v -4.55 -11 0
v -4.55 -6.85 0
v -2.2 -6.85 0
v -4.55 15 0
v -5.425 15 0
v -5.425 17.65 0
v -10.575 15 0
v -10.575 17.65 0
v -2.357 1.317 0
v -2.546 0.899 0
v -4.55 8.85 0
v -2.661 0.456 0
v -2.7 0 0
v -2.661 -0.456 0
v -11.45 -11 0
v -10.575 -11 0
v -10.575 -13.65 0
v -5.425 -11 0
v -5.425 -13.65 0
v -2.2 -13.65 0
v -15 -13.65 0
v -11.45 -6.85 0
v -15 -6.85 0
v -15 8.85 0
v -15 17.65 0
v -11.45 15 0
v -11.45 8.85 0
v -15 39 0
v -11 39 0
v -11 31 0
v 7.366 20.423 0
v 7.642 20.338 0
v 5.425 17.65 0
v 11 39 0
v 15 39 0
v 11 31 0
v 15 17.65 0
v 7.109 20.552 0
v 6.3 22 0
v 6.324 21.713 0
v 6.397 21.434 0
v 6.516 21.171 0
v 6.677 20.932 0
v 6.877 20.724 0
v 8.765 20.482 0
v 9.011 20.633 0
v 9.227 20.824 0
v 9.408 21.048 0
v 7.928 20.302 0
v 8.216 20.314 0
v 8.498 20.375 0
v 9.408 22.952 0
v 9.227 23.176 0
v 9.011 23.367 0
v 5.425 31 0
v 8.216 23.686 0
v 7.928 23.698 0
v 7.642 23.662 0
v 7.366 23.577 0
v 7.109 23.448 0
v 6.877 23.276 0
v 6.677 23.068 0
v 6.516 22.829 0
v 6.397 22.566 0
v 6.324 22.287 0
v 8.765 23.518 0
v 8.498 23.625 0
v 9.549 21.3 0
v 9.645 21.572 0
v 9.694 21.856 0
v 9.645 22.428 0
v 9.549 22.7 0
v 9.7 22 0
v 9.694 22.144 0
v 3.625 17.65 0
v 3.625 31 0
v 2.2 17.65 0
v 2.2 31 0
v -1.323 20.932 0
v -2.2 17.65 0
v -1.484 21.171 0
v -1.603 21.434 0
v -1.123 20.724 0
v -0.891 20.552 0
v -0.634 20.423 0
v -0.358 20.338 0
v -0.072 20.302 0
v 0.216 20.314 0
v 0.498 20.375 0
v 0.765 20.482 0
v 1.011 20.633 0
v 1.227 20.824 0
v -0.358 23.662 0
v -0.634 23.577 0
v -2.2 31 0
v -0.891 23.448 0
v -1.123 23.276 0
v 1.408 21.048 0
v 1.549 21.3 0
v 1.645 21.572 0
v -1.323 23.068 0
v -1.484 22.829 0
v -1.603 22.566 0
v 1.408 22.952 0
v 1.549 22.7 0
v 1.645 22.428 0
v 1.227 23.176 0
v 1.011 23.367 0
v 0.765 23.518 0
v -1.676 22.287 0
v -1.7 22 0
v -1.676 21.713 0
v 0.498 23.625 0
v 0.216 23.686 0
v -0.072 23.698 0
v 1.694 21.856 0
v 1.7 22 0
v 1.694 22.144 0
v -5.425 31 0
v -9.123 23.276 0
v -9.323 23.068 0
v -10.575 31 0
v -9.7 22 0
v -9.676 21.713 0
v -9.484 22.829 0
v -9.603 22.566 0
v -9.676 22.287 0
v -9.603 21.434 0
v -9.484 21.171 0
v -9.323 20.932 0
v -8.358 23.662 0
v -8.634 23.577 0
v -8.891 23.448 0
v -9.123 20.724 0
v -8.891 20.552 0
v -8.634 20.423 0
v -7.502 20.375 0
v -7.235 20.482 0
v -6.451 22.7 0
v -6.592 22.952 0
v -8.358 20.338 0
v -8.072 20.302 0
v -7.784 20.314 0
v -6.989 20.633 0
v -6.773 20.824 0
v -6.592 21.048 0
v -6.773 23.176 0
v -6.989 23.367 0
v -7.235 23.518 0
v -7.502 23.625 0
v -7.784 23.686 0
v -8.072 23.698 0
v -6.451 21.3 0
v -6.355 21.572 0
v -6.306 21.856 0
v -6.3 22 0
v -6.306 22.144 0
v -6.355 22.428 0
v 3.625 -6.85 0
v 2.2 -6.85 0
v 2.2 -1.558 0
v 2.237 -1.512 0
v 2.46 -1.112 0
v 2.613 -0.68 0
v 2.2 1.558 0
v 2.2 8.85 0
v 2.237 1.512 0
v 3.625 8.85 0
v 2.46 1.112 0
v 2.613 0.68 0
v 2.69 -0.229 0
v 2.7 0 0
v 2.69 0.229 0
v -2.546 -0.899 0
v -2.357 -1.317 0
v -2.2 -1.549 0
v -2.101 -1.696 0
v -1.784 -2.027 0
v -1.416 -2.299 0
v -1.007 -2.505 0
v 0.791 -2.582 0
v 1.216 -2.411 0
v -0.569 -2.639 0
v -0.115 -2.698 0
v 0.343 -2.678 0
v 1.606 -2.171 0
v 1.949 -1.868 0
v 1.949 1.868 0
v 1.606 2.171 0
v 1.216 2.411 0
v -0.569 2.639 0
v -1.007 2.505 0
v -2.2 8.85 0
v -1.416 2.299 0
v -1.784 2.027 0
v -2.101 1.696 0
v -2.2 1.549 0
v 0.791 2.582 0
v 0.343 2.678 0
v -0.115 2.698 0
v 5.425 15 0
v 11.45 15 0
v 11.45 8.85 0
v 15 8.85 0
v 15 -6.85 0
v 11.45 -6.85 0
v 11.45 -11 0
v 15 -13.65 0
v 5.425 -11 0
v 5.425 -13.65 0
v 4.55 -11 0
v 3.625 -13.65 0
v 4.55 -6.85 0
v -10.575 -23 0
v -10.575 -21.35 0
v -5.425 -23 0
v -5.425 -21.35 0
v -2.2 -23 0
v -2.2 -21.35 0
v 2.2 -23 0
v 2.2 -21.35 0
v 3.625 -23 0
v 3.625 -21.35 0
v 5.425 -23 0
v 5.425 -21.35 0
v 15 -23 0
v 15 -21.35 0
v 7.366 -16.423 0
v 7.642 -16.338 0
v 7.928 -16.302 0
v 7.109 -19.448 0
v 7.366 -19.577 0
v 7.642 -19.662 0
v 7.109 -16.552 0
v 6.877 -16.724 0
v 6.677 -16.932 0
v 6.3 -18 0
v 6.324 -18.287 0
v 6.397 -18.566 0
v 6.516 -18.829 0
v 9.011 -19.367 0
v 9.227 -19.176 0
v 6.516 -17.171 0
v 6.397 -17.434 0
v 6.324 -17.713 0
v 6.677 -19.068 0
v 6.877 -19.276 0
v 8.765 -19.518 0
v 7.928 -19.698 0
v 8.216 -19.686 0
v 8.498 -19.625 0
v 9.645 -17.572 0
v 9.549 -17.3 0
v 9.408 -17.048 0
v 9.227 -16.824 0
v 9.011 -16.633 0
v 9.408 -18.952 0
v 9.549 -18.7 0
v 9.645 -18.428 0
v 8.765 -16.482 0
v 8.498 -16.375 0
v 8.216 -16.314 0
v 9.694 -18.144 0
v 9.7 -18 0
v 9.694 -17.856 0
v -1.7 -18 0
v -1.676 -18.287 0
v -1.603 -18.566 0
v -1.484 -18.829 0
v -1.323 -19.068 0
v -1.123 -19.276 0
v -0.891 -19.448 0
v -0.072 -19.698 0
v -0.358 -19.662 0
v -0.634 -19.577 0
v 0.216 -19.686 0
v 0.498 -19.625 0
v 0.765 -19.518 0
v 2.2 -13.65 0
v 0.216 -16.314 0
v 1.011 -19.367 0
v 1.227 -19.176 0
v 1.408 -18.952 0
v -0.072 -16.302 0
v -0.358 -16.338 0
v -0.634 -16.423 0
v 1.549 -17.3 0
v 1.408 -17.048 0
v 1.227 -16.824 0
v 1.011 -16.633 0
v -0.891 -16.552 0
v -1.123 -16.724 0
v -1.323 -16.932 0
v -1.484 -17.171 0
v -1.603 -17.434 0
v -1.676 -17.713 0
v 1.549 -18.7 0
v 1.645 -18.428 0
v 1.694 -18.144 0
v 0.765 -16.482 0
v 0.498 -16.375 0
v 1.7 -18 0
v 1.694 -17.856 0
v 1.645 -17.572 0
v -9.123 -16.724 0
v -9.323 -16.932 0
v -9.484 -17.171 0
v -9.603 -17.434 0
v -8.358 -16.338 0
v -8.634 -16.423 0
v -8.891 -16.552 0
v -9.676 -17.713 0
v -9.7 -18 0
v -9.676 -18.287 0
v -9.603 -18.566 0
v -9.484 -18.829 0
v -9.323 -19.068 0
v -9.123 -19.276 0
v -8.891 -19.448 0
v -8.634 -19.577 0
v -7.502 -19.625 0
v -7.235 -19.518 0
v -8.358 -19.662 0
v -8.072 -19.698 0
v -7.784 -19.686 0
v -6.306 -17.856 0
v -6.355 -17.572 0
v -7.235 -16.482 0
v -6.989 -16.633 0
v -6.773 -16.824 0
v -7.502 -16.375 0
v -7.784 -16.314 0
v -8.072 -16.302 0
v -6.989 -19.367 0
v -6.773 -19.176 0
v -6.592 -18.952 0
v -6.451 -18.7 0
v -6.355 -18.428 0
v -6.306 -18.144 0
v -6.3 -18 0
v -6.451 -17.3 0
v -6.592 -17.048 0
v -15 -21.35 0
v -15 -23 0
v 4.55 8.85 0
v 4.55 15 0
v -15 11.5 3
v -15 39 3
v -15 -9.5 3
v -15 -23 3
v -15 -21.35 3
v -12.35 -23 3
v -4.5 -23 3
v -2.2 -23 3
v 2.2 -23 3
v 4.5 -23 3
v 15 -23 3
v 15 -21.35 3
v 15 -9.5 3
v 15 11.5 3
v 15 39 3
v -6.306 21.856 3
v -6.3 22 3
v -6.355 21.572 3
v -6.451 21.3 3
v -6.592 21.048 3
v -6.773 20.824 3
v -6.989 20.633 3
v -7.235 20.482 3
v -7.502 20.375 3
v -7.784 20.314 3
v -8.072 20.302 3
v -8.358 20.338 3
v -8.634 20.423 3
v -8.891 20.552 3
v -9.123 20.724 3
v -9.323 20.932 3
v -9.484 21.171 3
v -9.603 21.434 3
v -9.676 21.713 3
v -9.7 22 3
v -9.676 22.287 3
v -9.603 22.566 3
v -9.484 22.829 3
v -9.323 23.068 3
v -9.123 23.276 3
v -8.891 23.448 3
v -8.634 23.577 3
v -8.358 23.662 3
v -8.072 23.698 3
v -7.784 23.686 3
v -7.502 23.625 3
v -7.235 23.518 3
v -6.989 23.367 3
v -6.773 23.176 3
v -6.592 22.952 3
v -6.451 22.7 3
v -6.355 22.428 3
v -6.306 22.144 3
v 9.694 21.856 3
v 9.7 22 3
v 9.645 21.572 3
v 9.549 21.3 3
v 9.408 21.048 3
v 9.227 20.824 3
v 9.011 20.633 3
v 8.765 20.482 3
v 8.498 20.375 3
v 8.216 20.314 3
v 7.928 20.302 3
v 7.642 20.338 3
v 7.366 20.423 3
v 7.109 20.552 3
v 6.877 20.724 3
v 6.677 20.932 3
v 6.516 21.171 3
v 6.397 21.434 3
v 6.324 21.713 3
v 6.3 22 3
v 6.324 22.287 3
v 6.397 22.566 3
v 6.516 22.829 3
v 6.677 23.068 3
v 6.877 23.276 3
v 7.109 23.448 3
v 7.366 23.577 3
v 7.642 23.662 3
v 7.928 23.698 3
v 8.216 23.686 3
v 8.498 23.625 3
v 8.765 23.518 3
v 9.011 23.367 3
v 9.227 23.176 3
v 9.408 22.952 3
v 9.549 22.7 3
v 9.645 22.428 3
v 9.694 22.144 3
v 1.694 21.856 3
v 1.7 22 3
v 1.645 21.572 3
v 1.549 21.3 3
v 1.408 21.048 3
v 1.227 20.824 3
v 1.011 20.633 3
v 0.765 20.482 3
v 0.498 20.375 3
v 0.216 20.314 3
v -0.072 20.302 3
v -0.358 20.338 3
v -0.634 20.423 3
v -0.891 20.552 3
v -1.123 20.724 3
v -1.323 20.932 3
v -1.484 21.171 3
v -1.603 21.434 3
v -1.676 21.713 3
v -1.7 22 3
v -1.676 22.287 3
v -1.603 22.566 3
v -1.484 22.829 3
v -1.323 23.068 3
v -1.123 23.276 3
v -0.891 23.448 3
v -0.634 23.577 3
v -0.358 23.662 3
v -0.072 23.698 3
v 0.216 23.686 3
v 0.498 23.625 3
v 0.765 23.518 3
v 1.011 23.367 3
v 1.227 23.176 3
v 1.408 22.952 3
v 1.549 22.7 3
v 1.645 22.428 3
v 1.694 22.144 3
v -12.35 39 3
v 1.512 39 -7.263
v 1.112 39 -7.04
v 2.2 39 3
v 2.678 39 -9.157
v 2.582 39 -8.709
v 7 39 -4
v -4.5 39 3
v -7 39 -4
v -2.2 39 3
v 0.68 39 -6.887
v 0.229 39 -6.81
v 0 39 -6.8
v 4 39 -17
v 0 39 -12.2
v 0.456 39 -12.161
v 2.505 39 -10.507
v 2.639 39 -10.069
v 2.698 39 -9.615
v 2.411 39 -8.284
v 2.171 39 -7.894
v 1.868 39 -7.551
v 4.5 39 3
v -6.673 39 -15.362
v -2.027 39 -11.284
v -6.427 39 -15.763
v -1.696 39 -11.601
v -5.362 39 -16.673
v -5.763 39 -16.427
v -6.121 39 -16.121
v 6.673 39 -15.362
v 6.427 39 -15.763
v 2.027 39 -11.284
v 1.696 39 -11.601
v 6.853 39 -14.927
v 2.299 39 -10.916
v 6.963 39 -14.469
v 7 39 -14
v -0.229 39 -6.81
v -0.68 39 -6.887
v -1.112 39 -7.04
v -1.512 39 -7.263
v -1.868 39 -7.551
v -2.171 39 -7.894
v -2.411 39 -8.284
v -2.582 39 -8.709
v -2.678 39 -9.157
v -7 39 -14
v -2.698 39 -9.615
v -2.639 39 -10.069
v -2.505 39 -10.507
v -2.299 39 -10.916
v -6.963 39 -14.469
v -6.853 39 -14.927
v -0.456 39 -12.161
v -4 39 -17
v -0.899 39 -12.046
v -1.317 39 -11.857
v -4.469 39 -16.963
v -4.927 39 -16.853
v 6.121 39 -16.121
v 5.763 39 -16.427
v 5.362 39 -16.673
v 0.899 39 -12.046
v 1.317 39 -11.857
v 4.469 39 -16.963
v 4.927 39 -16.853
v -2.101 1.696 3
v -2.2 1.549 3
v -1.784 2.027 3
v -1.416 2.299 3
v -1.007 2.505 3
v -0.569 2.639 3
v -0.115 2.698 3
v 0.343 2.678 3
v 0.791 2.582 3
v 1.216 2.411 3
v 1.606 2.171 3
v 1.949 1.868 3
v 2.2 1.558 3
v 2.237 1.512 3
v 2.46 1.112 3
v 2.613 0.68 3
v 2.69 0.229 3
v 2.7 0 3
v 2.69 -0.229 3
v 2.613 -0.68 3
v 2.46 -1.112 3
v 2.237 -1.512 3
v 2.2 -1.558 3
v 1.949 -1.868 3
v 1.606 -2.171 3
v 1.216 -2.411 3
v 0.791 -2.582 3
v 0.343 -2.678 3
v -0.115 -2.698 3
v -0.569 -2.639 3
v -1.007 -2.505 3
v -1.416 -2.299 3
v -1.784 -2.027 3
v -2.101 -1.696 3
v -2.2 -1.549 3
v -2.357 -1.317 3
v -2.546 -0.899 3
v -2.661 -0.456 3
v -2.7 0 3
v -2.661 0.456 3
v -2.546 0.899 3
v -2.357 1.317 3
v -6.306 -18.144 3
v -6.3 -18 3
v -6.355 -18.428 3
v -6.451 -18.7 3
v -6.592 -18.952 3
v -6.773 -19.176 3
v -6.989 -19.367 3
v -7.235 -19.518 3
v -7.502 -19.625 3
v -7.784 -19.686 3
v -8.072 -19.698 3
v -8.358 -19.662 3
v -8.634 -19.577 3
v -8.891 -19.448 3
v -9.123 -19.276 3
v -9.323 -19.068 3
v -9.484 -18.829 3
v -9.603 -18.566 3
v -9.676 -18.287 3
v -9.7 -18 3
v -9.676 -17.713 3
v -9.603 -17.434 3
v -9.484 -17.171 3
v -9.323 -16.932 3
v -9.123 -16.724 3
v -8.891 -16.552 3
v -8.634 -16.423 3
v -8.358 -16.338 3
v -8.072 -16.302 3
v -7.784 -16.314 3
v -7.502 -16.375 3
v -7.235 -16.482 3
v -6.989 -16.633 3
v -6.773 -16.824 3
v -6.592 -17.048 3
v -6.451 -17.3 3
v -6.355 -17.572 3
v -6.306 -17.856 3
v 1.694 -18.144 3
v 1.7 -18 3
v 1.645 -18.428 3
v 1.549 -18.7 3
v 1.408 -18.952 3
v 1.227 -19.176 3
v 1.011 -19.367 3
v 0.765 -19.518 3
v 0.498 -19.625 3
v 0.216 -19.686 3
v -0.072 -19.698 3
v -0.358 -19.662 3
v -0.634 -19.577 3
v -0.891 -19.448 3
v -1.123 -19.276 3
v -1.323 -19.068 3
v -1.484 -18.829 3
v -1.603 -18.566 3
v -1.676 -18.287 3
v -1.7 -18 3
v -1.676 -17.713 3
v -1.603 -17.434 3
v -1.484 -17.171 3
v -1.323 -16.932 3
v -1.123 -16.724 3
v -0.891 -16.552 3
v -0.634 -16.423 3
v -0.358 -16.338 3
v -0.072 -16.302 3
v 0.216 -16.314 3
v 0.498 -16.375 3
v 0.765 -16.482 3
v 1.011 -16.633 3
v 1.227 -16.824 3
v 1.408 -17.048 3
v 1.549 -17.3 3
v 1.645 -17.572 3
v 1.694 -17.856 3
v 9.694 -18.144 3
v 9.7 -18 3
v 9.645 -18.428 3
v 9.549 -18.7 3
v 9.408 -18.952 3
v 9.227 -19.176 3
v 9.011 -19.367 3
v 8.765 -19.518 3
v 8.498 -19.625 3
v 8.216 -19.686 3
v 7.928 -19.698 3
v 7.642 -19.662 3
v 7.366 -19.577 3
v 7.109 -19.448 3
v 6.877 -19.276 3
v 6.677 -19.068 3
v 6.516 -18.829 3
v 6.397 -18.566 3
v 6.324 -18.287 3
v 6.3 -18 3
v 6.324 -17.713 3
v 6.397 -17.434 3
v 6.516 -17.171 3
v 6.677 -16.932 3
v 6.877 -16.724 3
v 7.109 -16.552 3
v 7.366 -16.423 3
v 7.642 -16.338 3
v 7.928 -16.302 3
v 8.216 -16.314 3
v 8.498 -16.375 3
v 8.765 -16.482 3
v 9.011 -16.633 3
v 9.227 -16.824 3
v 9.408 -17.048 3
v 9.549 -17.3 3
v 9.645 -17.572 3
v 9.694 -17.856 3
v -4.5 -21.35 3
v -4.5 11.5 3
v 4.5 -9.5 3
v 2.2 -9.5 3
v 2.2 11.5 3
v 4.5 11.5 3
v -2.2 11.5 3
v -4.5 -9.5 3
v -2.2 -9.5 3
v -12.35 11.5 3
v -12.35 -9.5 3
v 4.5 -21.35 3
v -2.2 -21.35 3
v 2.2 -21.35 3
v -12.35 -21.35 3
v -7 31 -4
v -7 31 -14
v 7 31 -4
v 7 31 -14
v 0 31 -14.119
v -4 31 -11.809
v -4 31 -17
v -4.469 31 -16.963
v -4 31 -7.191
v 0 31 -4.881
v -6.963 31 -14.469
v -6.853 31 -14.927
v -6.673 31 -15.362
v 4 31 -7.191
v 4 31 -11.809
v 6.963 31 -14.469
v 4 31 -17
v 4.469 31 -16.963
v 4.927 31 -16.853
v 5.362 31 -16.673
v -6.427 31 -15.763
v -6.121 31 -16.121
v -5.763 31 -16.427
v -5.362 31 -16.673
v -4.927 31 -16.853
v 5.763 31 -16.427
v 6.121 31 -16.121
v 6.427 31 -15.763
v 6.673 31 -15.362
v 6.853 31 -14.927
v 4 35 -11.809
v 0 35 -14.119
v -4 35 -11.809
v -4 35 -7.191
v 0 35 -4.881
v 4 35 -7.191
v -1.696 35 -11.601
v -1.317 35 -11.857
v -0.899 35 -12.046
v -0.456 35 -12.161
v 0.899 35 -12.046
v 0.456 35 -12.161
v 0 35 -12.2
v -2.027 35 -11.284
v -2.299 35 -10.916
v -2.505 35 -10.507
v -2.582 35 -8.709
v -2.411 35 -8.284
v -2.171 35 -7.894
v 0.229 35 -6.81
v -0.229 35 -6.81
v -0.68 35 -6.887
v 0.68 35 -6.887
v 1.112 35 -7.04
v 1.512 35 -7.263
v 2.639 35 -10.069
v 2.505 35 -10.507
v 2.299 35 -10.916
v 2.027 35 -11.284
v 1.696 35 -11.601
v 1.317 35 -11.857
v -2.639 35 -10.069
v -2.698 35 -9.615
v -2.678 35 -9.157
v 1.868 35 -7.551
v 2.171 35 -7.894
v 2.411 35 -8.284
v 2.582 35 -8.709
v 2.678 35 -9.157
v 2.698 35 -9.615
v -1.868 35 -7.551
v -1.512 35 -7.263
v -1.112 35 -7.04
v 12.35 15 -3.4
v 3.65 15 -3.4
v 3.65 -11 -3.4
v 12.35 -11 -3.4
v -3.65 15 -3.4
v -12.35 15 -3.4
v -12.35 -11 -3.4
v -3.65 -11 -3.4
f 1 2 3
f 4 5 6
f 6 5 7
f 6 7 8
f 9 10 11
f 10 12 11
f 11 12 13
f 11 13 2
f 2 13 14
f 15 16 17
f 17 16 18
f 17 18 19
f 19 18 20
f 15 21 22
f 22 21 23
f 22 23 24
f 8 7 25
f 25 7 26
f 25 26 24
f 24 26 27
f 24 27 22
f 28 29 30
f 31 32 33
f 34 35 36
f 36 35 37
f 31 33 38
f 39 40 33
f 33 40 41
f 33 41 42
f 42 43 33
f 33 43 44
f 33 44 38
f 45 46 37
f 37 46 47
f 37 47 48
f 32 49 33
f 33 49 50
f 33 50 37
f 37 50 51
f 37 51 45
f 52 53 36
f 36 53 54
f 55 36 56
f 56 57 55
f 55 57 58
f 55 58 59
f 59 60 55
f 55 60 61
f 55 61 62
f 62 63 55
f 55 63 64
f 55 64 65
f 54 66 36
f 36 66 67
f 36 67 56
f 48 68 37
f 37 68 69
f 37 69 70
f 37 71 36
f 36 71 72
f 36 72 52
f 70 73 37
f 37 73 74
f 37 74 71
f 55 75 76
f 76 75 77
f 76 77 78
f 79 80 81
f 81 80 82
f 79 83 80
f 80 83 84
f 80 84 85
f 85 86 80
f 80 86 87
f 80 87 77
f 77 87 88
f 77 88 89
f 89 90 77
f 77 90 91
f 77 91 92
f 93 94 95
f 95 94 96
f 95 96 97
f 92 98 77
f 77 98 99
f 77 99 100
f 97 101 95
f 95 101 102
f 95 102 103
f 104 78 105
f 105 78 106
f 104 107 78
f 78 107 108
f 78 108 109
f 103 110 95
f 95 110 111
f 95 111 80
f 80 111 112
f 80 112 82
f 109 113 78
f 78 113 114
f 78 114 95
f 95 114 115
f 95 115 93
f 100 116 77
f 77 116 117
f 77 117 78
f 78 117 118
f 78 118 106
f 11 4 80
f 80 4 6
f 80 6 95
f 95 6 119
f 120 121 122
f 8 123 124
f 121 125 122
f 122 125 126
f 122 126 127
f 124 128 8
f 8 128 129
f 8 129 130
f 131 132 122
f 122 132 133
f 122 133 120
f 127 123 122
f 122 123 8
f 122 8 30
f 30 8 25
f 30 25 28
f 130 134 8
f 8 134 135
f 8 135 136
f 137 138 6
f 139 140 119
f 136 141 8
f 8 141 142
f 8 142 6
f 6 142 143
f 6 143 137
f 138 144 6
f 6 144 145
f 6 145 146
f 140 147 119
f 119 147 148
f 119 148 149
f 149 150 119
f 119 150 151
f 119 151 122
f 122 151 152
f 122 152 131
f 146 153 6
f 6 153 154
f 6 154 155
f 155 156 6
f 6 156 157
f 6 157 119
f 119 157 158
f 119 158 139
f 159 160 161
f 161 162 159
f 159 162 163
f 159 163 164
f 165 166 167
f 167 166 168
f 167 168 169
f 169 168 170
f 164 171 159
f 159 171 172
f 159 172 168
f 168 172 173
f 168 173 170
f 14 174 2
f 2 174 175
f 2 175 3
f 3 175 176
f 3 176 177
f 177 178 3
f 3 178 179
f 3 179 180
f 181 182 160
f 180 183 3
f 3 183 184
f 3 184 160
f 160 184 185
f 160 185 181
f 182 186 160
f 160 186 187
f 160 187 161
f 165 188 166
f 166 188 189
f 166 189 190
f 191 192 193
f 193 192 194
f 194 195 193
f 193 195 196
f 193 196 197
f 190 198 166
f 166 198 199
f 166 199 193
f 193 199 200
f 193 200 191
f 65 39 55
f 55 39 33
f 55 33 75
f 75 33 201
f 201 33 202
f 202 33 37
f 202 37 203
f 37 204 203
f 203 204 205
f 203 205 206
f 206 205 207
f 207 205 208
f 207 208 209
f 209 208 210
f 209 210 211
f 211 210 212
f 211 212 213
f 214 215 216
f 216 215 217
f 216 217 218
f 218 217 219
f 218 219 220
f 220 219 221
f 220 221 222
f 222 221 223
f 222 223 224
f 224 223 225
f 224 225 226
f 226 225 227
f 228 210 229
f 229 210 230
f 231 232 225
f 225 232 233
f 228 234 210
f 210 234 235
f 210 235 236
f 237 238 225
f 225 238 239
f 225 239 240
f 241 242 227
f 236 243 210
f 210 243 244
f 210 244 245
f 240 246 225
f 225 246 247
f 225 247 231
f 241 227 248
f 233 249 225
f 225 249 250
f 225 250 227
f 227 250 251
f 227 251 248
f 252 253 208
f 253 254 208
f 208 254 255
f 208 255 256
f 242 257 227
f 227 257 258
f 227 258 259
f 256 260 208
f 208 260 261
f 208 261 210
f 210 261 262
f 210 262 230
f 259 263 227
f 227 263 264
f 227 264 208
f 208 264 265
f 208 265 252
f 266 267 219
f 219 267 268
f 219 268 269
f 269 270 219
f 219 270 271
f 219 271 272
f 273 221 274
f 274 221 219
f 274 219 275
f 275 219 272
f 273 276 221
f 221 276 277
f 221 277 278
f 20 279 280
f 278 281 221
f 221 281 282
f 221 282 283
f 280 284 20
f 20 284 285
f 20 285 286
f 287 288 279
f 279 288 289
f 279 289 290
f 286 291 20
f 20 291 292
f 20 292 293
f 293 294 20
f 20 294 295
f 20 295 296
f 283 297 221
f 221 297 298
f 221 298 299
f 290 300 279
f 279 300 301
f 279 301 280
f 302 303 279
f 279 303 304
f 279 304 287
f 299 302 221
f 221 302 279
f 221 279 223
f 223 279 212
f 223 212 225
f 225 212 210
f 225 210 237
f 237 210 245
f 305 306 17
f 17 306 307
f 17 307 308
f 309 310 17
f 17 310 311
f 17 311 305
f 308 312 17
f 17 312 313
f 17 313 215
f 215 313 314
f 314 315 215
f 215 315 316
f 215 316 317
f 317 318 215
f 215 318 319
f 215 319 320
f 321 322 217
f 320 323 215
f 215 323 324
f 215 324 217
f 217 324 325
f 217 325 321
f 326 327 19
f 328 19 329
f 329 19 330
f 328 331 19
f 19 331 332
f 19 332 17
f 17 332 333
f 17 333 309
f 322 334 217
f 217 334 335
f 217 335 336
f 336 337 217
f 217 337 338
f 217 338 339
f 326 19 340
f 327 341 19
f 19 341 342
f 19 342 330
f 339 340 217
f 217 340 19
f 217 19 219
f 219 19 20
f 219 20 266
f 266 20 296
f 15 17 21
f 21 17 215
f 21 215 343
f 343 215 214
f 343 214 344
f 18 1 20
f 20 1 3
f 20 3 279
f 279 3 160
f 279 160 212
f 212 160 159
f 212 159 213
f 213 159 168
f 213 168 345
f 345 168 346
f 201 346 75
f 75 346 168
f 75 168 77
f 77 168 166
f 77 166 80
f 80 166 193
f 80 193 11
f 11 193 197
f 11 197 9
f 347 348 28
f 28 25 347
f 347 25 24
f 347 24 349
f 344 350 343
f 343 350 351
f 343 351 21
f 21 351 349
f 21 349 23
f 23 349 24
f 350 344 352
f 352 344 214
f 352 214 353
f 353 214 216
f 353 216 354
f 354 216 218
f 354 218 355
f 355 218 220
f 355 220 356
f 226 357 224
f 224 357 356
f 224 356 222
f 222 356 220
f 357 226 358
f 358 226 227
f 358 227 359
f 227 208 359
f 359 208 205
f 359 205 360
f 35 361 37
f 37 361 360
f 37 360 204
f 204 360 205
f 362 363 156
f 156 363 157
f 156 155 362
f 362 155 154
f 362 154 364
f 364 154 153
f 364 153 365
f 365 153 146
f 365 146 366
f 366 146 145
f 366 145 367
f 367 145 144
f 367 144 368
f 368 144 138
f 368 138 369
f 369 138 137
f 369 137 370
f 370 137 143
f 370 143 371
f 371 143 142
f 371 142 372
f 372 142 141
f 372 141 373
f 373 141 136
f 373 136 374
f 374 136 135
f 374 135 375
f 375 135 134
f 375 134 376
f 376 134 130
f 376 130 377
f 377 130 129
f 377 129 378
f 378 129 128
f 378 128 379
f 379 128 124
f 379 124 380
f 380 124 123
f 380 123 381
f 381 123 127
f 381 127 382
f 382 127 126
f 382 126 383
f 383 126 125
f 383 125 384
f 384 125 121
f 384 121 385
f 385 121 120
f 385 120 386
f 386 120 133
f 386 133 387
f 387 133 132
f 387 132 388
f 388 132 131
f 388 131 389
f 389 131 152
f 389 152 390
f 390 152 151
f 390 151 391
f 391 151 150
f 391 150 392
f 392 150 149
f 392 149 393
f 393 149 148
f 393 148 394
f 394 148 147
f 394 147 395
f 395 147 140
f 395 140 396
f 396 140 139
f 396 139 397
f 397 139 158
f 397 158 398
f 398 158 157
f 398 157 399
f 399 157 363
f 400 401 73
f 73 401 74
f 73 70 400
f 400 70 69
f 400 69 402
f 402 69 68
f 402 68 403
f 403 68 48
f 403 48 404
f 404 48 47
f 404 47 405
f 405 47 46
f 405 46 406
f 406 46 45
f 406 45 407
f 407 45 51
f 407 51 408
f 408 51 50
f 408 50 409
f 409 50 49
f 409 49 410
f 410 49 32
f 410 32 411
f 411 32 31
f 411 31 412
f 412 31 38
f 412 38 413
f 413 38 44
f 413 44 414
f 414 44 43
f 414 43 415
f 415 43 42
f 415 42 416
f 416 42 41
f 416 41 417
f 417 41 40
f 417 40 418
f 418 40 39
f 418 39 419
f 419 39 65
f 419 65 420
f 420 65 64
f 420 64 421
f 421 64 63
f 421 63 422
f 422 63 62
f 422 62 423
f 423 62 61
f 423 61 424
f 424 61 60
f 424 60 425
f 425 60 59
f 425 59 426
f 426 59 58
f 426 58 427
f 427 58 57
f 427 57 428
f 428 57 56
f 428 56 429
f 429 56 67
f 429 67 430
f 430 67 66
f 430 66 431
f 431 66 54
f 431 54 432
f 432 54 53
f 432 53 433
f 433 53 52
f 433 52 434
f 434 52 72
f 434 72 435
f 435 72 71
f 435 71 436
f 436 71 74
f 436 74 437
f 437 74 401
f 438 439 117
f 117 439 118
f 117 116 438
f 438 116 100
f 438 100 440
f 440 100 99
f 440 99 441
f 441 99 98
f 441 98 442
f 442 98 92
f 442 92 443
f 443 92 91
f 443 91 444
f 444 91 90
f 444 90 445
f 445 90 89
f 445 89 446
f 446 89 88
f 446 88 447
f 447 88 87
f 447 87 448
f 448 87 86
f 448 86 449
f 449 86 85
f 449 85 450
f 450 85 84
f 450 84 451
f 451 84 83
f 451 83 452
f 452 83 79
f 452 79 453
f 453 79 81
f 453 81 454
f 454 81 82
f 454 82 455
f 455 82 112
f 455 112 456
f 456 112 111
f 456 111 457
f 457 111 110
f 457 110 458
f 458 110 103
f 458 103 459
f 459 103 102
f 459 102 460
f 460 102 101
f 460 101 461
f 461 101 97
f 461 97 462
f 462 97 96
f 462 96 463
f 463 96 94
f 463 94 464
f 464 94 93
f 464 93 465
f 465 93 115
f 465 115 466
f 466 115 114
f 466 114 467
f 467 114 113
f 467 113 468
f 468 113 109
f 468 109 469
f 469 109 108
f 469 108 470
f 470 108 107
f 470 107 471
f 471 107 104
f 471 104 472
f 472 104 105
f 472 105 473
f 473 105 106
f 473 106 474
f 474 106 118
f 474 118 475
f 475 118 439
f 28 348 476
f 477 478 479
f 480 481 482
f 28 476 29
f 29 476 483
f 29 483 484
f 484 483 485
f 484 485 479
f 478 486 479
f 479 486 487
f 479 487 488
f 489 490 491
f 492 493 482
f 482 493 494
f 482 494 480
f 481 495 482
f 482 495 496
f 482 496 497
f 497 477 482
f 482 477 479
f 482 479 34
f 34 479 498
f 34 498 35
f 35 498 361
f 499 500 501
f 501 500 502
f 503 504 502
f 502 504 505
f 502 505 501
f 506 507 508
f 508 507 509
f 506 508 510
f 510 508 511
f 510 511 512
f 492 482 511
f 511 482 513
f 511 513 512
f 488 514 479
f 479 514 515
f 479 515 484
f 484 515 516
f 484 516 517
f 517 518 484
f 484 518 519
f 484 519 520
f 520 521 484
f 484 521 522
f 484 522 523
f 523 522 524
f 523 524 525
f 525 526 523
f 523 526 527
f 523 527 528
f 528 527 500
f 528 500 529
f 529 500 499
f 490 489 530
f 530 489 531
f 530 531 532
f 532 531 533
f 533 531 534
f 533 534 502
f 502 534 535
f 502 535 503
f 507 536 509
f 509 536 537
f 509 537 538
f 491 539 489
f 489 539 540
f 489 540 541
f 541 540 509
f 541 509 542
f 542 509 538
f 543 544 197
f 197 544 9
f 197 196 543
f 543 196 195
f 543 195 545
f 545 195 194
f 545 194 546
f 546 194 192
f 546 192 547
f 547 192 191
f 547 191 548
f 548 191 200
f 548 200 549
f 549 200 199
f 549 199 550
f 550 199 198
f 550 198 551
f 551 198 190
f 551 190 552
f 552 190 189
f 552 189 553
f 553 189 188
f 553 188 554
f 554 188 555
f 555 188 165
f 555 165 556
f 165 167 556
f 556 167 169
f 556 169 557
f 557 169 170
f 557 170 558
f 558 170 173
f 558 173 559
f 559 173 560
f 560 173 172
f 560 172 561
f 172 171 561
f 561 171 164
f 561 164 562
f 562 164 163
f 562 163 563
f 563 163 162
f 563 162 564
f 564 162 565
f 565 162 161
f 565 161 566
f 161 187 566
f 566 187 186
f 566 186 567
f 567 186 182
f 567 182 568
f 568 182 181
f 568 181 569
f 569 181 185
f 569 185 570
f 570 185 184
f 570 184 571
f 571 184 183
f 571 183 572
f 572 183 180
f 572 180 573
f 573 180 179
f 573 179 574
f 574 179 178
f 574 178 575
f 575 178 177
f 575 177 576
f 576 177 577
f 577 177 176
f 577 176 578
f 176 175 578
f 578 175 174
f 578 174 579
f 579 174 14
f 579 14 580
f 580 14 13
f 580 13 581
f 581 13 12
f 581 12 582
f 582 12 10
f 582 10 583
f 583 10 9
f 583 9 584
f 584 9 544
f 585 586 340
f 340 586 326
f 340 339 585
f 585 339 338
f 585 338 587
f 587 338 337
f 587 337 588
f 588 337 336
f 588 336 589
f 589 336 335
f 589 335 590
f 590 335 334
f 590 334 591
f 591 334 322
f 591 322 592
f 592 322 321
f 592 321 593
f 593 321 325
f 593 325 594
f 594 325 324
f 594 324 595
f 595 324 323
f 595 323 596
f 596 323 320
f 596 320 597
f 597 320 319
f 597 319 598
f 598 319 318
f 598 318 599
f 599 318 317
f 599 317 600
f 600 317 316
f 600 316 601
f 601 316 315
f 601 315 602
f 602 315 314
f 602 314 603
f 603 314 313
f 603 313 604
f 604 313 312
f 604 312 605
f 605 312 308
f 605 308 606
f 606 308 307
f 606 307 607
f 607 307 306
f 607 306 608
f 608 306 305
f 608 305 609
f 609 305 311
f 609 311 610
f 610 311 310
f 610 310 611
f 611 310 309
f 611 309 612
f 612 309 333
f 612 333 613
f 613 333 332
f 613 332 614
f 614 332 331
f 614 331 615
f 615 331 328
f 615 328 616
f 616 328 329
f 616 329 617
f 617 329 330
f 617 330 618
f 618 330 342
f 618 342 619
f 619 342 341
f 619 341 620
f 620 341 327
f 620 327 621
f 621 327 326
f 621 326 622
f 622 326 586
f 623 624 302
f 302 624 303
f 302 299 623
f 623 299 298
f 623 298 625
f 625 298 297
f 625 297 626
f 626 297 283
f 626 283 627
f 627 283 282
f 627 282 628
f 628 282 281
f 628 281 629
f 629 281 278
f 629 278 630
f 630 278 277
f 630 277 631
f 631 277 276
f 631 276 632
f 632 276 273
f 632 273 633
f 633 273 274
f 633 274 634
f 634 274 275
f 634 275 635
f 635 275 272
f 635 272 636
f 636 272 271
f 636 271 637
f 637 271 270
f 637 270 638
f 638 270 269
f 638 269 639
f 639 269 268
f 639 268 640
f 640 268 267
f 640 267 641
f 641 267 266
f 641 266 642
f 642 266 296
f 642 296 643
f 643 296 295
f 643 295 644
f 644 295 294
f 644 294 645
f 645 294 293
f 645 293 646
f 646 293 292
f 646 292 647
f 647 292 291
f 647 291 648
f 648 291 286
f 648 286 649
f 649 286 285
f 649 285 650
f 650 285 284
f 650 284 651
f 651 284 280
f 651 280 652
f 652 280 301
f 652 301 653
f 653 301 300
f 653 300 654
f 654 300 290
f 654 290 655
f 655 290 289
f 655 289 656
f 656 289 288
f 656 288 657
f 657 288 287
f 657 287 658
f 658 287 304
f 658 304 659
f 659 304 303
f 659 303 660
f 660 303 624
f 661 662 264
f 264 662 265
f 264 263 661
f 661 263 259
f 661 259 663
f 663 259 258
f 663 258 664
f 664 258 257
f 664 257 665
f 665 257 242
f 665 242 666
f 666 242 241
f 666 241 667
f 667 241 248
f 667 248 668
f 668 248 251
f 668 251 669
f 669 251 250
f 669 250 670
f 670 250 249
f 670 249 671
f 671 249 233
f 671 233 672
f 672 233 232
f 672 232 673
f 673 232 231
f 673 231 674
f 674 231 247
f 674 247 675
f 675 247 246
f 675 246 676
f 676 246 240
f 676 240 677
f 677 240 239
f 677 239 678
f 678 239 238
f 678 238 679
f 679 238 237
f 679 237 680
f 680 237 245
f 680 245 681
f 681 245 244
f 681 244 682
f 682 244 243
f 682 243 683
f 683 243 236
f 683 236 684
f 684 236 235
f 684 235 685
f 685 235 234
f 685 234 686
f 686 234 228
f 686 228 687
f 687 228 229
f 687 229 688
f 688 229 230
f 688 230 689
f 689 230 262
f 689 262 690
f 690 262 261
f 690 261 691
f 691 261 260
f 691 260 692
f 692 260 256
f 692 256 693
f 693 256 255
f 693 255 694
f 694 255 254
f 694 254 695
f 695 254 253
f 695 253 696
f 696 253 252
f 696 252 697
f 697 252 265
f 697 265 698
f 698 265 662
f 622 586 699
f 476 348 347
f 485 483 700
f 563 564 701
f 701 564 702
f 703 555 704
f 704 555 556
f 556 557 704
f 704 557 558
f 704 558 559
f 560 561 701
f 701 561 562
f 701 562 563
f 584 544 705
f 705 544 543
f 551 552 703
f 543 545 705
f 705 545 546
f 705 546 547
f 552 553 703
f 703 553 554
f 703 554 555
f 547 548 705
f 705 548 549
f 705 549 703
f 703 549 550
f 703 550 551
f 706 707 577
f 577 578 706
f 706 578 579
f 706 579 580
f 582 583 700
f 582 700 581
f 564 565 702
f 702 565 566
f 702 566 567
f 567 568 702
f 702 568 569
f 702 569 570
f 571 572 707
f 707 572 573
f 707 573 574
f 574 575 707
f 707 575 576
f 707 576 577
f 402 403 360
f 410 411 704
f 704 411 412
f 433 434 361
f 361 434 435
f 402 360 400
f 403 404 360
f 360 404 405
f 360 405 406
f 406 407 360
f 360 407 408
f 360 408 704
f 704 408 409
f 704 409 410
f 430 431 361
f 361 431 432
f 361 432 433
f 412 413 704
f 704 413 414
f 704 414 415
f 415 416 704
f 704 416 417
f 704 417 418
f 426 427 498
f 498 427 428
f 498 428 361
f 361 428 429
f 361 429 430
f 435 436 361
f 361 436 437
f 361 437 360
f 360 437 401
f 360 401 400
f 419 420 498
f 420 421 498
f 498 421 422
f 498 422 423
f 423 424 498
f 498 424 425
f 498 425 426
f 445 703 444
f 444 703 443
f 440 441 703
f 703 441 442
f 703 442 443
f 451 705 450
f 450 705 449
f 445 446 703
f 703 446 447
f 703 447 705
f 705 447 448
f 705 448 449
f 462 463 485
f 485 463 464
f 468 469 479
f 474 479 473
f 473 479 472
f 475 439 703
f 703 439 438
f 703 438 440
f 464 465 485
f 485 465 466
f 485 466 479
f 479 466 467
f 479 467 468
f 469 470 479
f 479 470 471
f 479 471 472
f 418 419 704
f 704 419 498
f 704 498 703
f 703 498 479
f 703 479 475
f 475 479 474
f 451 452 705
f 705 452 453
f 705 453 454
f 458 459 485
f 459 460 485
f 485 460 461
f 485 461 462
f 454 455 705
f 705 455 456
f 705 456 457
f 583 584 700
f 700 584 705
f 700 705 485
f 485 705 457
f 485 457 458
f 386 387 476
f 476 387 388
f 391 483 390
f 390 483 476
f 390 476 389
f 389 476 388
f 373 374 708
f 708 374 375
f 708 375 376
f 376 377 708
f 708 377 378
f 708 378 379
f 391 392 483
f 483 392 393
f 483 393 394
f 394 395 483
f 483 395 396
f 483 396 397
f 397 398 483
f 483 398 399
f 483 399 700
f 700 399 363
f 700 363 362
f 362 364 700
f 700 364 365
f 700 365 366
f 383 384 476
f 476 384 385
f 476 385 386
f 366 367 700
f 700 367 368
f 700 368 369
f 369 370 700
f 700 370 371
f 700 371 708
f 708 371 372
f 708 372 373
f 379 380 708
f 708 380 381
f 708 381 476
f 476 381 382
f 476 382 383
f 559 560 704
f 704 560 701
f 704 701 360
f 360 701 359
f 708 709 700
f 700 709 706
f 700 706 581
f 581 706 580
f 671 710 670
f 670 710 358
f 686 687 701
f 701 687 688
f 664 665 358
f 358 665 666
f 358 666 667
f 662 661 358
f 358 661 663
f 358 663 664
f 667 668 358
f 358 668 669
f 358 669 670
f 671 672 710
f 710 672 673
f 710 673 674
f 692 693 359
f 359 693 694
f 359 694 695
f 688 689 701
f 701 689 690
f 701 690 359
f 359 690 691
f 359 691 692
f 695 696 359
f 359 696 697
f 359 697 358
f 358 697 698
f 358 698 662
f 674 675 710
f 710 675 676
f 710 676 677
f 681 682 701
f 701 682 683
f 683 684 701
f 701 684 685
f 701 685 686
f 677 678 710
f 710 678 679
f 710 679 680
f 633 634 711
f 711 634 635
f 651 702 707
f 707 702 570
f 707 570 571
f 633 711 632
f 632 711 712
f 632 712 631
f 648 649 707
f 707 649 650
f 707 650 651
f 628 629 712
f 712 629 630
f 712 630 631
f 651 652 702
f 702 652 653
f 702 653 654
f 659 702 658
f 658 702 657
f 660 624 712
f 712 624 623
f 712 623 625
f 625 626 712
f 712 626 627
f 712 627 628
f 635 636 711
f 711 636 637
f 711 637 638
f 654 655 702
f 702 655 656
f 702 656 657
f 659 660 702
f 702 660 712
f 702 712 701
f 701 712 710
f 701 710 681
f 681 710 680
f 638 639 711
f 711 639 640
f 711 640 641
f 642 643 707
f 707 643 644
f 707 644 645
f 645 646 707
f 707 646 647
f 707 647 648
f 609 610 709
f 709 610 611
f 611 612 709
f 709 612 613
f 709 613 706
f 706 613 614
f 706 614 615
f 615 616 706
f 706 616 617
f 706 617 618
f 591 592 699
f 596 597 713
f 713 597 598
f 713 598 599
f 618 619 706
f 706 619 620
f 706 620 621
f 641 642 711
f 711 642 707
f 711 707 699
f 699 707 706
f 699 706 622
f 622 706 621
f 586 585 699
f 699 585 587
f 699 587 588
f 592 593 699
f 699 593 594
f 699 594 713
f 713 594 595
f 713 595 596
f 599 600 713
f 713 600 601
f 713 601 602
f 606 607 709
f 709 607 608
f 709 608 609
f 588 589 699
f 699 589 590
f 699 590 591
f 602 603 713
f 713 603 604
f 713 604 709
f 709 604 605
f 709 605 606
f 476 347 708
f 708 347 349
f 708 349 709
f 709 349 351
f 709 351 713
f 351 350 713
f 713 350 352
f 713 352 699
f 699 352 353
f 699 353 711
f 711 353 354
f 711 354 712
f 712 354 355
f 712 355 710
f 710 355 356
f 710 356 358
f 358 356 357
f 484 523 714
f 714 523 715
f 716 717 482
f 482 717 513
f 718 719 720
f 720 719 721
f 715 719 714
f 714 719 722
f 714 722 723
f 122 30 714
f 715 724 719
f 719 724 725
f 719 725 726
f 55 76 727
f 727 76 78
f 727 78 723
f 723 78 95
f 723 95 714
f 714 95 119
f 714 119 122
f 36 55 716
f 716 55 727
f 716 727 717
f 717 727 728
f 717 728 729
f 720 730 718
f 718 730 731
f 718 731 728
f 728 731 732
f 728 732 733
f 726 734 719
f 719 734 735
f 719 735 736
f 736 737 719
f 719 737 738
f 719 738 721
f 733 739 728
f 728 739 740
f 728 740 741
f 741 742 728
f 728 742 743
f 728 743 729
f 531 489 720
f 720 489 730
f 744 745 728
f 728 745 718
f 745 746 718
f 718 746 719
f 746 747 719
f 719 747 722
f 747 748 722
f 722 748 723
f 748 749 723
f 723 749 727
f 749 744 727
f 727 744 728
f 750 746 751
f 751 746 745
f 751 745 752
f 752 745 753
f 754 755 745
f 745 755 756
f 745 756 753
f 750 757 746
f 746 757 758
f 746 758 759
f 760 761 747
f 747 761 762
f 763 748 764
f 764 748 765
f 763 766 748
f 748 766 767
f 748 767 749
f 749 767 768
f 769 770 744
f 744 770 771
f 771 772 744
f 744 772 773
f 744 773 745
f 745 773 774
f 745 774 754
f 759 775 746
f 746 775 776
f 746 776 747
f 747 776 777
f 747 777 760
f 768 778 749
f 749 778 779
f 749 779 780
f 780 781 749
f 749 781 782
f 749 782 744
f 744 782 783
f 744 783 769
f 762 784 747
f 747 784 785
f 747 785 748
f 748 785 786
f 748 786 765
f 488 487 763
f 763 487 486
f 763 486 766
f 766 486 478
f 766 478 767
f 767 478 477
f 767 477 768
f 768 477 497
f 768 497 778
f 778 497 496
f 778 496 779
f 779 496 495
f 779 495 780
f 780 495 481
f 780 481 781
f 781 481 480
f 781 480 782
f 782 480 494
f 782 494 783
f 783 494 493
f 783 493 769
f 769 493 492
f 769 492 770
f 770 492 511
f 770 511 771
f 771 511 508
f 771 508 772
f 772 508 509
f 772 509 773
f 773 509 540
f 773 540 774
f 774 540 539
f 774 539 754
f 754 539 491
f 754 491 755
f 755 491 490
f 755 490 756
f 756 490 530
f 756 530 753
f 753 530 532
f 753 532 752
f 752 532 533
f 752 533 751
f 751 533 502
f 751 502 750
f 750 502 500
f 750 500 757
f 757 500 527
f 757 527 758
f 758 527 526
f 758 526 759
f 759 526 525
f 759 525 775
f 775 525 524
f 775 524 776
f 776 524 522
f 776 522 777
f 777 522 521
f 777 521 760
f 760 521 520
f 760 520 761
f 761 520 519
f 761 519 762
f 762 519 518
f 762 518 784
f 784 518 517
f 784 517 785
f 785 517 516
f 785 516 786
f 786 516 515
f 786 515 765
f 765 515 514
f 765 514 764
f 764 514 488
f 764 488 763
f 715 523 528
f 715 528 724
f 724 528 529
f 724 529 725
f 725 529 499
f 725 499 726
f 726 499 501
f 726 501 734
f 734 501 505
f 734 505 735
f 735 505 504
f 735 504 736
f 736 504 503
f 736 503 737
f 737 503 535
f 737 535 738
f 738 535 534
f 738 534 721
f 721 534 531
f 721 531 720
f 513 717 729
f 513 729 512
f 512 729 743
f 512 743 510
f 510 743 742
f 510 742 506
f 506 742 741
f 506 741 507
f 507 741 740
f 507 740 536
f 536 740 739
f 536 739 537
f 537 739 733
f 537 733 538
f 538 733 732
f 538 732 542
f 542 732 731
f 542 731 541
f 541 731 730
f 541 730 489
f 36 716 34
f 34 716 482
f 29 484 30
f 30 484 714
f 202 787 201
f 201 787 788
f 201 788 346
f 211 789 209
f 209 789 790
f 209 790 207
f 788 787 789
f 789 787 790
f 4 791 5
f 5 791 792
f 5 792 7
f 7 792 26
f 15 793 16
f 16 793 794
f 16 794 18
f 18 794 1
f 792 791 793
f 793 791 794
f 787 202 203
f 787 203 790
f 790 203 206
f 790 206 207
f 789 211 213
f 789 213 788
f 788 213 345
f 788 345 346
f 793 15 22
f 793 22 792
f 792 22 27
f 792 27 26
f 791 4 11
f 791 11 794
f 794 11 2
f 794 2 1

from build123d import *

# Parameters (mm, degrees)
SKETCH_1_R          = 1.7
SKETCH_1_R_2        = 2.7
EXTRUDE_1_DEPTH     = 3
SKETCH_3_W          = 14
SKETCH_3_H          = 8
EXTRUDE_2_DEPTH     = 17
CUT_EXTRUDE_1_DEPTH = 4
CUT_EXTRUDE_2_REACH = 64.274
SKETCH_6_R          = 2.7
FILLET_1_R          = 3
CHAMFER_1_SIZE      = 4
SKETCH_7_W          = 6.9
SKETCH_7_H          = 26
EXTRUDE_3_DEPTH     = 3.4
EXTRUDE_4_DEPTH     = 26


with BuildPart() as part:
    # 草图1 → 凸台-拉伸1 (new body)
    with BuildSketch(Plane.XY):
        Polygon((-15, 27), (-15, -23), (15, -23), (15, 27), (15, 39), (-15, 39), align=None)
        with Locations((-8, -18)):
            Circle(SKETCH_1_R, mode=Mode.SUBTRACT)
        with Locations((0, -18)):
            Circle(SKETCH_1_R, mode=Mode.SUBTRACT)
        with Locations((8, -18)):
            Circle(SKETCH_1_R, mode=Mode.SUBTRACT)
        with Locations((-8, 22)):
            Circle(SKETCH_1_R, mode=Mode.SUBTRACT)
        Circle(SKETCH_1_R_2, mode=Mode.SUBTRACT)
        with Locations((0, 22)):
            Circle(SKETCH_1_R, mode=Mode.SUBTRACT)
        with Locations((8, 22)):
            Circle(SKETCH_1_R, mode=Mode.SUBTRACT)
    extrude(amount=EXTRUDE_1_DEPTH)

    # 草图3 → 凸台-拉伸2 (add)
    with BuildSketch(Plane(origin=(0, 0, 0), x_dir=(-1, 0, 0), z_dir=(0, 0, -1))):
        with Locations((0, 35)):
            Rectangle(SKETCH_3_W, SKETCH_3_H)
    extrude(amount=EXTRUDE_2_DEPTH)

    # 草图5 → 切除-拉伸1 (cut)
    with BuildSketch(Plane.XZ.offset(-31)):
        Polygon((4, -11.809401077), (4, -7.190598923), (0, -4.881197846), (-4, -7.190598923), (-4, -11.809401077), (0, -14.118802154), align=None)
    extrude(amount=-CUT_EXTRUDE_1_DEPTH, mode=Mode.SUBTRACT)

    # 草图6 → 切除-拉伸2 (cut, up to next)
    with BuildSketch(Plane.XZ.offset(-35), mode=Mode.PRIVATE) as cut_extrude_2_sk1:
        with Locations(Location((0, -9.5, 0), (0, 0, 270))):
            Circle(SKETCH_6_R)
    cut_extrude_2_tool1 = extrude(cut_extrude_2_sk1.sketch, amount=-CUT_EXTRUDE_2_REACH, mode=Mode.PRIVATE) & part.part
    add(cut_extrude_2_tool1.solids().sort_by_distance((0, 35, -9.5))[0], mode=Mode.SUBTRACT)

    # 圆角1
    fillet_1_edges = [part.edges().sort_by_distance(p)[0] for p in [
        (-7, 35, -17),
        (7, 35, -17),
    ]]
    fillet(fillet_1_edges, radius=FILLET_1_R)

    # 倒角1
    chamfer_1_edges = [part.edges().sort_by_distance(p)[0] for p in [
        (-7, 35, 0),
        (7, 35, 0),
    ]]
    chamfer(chamfer_1_edges, length=CHAMFER_1_SIZE)

    # 草图7 → 凸台-拉伸3 (add)
    with BuildSketch(Plane(origin=(0, 0, 0), x_dir=(-1, 0, 0), z_dir=(0, 0, -1))):
        with Locations((-8, 2)):
            Rectangle(SKETCH_7_W, SKETCH_7_H)
        with Locations((8, 2)):
            Rectangle(SKETCH_7_W, SKETCH_7_H)
    extrude(amount=EXTRUDE_3_DEPTH)

    # 草图8 → 凸台-拉伸4 (add)
    with BuildSketch(Plane(origin=(0, 15, 0), x_dir=(1, 0, 0), z_dir=(0, 1, 0))):
        Polygon((11.45, 0), (11.45, 3.4), (12.35, 3.4), align=None)
        Polygon((3.65, 3.4), (4.55, 0), (4.55, 3.4), align=None)
        Polygon((-12.35, 3.4), (-11.45, 0), (-11.45, 3.4), align=None)
        Polygon((-4.55, 0), (-4.55, 3.4), (-3.65, 3.4), align=None)
    extrude(amount=-EXTRUDE_4_DEPTH)


solid = part.part
